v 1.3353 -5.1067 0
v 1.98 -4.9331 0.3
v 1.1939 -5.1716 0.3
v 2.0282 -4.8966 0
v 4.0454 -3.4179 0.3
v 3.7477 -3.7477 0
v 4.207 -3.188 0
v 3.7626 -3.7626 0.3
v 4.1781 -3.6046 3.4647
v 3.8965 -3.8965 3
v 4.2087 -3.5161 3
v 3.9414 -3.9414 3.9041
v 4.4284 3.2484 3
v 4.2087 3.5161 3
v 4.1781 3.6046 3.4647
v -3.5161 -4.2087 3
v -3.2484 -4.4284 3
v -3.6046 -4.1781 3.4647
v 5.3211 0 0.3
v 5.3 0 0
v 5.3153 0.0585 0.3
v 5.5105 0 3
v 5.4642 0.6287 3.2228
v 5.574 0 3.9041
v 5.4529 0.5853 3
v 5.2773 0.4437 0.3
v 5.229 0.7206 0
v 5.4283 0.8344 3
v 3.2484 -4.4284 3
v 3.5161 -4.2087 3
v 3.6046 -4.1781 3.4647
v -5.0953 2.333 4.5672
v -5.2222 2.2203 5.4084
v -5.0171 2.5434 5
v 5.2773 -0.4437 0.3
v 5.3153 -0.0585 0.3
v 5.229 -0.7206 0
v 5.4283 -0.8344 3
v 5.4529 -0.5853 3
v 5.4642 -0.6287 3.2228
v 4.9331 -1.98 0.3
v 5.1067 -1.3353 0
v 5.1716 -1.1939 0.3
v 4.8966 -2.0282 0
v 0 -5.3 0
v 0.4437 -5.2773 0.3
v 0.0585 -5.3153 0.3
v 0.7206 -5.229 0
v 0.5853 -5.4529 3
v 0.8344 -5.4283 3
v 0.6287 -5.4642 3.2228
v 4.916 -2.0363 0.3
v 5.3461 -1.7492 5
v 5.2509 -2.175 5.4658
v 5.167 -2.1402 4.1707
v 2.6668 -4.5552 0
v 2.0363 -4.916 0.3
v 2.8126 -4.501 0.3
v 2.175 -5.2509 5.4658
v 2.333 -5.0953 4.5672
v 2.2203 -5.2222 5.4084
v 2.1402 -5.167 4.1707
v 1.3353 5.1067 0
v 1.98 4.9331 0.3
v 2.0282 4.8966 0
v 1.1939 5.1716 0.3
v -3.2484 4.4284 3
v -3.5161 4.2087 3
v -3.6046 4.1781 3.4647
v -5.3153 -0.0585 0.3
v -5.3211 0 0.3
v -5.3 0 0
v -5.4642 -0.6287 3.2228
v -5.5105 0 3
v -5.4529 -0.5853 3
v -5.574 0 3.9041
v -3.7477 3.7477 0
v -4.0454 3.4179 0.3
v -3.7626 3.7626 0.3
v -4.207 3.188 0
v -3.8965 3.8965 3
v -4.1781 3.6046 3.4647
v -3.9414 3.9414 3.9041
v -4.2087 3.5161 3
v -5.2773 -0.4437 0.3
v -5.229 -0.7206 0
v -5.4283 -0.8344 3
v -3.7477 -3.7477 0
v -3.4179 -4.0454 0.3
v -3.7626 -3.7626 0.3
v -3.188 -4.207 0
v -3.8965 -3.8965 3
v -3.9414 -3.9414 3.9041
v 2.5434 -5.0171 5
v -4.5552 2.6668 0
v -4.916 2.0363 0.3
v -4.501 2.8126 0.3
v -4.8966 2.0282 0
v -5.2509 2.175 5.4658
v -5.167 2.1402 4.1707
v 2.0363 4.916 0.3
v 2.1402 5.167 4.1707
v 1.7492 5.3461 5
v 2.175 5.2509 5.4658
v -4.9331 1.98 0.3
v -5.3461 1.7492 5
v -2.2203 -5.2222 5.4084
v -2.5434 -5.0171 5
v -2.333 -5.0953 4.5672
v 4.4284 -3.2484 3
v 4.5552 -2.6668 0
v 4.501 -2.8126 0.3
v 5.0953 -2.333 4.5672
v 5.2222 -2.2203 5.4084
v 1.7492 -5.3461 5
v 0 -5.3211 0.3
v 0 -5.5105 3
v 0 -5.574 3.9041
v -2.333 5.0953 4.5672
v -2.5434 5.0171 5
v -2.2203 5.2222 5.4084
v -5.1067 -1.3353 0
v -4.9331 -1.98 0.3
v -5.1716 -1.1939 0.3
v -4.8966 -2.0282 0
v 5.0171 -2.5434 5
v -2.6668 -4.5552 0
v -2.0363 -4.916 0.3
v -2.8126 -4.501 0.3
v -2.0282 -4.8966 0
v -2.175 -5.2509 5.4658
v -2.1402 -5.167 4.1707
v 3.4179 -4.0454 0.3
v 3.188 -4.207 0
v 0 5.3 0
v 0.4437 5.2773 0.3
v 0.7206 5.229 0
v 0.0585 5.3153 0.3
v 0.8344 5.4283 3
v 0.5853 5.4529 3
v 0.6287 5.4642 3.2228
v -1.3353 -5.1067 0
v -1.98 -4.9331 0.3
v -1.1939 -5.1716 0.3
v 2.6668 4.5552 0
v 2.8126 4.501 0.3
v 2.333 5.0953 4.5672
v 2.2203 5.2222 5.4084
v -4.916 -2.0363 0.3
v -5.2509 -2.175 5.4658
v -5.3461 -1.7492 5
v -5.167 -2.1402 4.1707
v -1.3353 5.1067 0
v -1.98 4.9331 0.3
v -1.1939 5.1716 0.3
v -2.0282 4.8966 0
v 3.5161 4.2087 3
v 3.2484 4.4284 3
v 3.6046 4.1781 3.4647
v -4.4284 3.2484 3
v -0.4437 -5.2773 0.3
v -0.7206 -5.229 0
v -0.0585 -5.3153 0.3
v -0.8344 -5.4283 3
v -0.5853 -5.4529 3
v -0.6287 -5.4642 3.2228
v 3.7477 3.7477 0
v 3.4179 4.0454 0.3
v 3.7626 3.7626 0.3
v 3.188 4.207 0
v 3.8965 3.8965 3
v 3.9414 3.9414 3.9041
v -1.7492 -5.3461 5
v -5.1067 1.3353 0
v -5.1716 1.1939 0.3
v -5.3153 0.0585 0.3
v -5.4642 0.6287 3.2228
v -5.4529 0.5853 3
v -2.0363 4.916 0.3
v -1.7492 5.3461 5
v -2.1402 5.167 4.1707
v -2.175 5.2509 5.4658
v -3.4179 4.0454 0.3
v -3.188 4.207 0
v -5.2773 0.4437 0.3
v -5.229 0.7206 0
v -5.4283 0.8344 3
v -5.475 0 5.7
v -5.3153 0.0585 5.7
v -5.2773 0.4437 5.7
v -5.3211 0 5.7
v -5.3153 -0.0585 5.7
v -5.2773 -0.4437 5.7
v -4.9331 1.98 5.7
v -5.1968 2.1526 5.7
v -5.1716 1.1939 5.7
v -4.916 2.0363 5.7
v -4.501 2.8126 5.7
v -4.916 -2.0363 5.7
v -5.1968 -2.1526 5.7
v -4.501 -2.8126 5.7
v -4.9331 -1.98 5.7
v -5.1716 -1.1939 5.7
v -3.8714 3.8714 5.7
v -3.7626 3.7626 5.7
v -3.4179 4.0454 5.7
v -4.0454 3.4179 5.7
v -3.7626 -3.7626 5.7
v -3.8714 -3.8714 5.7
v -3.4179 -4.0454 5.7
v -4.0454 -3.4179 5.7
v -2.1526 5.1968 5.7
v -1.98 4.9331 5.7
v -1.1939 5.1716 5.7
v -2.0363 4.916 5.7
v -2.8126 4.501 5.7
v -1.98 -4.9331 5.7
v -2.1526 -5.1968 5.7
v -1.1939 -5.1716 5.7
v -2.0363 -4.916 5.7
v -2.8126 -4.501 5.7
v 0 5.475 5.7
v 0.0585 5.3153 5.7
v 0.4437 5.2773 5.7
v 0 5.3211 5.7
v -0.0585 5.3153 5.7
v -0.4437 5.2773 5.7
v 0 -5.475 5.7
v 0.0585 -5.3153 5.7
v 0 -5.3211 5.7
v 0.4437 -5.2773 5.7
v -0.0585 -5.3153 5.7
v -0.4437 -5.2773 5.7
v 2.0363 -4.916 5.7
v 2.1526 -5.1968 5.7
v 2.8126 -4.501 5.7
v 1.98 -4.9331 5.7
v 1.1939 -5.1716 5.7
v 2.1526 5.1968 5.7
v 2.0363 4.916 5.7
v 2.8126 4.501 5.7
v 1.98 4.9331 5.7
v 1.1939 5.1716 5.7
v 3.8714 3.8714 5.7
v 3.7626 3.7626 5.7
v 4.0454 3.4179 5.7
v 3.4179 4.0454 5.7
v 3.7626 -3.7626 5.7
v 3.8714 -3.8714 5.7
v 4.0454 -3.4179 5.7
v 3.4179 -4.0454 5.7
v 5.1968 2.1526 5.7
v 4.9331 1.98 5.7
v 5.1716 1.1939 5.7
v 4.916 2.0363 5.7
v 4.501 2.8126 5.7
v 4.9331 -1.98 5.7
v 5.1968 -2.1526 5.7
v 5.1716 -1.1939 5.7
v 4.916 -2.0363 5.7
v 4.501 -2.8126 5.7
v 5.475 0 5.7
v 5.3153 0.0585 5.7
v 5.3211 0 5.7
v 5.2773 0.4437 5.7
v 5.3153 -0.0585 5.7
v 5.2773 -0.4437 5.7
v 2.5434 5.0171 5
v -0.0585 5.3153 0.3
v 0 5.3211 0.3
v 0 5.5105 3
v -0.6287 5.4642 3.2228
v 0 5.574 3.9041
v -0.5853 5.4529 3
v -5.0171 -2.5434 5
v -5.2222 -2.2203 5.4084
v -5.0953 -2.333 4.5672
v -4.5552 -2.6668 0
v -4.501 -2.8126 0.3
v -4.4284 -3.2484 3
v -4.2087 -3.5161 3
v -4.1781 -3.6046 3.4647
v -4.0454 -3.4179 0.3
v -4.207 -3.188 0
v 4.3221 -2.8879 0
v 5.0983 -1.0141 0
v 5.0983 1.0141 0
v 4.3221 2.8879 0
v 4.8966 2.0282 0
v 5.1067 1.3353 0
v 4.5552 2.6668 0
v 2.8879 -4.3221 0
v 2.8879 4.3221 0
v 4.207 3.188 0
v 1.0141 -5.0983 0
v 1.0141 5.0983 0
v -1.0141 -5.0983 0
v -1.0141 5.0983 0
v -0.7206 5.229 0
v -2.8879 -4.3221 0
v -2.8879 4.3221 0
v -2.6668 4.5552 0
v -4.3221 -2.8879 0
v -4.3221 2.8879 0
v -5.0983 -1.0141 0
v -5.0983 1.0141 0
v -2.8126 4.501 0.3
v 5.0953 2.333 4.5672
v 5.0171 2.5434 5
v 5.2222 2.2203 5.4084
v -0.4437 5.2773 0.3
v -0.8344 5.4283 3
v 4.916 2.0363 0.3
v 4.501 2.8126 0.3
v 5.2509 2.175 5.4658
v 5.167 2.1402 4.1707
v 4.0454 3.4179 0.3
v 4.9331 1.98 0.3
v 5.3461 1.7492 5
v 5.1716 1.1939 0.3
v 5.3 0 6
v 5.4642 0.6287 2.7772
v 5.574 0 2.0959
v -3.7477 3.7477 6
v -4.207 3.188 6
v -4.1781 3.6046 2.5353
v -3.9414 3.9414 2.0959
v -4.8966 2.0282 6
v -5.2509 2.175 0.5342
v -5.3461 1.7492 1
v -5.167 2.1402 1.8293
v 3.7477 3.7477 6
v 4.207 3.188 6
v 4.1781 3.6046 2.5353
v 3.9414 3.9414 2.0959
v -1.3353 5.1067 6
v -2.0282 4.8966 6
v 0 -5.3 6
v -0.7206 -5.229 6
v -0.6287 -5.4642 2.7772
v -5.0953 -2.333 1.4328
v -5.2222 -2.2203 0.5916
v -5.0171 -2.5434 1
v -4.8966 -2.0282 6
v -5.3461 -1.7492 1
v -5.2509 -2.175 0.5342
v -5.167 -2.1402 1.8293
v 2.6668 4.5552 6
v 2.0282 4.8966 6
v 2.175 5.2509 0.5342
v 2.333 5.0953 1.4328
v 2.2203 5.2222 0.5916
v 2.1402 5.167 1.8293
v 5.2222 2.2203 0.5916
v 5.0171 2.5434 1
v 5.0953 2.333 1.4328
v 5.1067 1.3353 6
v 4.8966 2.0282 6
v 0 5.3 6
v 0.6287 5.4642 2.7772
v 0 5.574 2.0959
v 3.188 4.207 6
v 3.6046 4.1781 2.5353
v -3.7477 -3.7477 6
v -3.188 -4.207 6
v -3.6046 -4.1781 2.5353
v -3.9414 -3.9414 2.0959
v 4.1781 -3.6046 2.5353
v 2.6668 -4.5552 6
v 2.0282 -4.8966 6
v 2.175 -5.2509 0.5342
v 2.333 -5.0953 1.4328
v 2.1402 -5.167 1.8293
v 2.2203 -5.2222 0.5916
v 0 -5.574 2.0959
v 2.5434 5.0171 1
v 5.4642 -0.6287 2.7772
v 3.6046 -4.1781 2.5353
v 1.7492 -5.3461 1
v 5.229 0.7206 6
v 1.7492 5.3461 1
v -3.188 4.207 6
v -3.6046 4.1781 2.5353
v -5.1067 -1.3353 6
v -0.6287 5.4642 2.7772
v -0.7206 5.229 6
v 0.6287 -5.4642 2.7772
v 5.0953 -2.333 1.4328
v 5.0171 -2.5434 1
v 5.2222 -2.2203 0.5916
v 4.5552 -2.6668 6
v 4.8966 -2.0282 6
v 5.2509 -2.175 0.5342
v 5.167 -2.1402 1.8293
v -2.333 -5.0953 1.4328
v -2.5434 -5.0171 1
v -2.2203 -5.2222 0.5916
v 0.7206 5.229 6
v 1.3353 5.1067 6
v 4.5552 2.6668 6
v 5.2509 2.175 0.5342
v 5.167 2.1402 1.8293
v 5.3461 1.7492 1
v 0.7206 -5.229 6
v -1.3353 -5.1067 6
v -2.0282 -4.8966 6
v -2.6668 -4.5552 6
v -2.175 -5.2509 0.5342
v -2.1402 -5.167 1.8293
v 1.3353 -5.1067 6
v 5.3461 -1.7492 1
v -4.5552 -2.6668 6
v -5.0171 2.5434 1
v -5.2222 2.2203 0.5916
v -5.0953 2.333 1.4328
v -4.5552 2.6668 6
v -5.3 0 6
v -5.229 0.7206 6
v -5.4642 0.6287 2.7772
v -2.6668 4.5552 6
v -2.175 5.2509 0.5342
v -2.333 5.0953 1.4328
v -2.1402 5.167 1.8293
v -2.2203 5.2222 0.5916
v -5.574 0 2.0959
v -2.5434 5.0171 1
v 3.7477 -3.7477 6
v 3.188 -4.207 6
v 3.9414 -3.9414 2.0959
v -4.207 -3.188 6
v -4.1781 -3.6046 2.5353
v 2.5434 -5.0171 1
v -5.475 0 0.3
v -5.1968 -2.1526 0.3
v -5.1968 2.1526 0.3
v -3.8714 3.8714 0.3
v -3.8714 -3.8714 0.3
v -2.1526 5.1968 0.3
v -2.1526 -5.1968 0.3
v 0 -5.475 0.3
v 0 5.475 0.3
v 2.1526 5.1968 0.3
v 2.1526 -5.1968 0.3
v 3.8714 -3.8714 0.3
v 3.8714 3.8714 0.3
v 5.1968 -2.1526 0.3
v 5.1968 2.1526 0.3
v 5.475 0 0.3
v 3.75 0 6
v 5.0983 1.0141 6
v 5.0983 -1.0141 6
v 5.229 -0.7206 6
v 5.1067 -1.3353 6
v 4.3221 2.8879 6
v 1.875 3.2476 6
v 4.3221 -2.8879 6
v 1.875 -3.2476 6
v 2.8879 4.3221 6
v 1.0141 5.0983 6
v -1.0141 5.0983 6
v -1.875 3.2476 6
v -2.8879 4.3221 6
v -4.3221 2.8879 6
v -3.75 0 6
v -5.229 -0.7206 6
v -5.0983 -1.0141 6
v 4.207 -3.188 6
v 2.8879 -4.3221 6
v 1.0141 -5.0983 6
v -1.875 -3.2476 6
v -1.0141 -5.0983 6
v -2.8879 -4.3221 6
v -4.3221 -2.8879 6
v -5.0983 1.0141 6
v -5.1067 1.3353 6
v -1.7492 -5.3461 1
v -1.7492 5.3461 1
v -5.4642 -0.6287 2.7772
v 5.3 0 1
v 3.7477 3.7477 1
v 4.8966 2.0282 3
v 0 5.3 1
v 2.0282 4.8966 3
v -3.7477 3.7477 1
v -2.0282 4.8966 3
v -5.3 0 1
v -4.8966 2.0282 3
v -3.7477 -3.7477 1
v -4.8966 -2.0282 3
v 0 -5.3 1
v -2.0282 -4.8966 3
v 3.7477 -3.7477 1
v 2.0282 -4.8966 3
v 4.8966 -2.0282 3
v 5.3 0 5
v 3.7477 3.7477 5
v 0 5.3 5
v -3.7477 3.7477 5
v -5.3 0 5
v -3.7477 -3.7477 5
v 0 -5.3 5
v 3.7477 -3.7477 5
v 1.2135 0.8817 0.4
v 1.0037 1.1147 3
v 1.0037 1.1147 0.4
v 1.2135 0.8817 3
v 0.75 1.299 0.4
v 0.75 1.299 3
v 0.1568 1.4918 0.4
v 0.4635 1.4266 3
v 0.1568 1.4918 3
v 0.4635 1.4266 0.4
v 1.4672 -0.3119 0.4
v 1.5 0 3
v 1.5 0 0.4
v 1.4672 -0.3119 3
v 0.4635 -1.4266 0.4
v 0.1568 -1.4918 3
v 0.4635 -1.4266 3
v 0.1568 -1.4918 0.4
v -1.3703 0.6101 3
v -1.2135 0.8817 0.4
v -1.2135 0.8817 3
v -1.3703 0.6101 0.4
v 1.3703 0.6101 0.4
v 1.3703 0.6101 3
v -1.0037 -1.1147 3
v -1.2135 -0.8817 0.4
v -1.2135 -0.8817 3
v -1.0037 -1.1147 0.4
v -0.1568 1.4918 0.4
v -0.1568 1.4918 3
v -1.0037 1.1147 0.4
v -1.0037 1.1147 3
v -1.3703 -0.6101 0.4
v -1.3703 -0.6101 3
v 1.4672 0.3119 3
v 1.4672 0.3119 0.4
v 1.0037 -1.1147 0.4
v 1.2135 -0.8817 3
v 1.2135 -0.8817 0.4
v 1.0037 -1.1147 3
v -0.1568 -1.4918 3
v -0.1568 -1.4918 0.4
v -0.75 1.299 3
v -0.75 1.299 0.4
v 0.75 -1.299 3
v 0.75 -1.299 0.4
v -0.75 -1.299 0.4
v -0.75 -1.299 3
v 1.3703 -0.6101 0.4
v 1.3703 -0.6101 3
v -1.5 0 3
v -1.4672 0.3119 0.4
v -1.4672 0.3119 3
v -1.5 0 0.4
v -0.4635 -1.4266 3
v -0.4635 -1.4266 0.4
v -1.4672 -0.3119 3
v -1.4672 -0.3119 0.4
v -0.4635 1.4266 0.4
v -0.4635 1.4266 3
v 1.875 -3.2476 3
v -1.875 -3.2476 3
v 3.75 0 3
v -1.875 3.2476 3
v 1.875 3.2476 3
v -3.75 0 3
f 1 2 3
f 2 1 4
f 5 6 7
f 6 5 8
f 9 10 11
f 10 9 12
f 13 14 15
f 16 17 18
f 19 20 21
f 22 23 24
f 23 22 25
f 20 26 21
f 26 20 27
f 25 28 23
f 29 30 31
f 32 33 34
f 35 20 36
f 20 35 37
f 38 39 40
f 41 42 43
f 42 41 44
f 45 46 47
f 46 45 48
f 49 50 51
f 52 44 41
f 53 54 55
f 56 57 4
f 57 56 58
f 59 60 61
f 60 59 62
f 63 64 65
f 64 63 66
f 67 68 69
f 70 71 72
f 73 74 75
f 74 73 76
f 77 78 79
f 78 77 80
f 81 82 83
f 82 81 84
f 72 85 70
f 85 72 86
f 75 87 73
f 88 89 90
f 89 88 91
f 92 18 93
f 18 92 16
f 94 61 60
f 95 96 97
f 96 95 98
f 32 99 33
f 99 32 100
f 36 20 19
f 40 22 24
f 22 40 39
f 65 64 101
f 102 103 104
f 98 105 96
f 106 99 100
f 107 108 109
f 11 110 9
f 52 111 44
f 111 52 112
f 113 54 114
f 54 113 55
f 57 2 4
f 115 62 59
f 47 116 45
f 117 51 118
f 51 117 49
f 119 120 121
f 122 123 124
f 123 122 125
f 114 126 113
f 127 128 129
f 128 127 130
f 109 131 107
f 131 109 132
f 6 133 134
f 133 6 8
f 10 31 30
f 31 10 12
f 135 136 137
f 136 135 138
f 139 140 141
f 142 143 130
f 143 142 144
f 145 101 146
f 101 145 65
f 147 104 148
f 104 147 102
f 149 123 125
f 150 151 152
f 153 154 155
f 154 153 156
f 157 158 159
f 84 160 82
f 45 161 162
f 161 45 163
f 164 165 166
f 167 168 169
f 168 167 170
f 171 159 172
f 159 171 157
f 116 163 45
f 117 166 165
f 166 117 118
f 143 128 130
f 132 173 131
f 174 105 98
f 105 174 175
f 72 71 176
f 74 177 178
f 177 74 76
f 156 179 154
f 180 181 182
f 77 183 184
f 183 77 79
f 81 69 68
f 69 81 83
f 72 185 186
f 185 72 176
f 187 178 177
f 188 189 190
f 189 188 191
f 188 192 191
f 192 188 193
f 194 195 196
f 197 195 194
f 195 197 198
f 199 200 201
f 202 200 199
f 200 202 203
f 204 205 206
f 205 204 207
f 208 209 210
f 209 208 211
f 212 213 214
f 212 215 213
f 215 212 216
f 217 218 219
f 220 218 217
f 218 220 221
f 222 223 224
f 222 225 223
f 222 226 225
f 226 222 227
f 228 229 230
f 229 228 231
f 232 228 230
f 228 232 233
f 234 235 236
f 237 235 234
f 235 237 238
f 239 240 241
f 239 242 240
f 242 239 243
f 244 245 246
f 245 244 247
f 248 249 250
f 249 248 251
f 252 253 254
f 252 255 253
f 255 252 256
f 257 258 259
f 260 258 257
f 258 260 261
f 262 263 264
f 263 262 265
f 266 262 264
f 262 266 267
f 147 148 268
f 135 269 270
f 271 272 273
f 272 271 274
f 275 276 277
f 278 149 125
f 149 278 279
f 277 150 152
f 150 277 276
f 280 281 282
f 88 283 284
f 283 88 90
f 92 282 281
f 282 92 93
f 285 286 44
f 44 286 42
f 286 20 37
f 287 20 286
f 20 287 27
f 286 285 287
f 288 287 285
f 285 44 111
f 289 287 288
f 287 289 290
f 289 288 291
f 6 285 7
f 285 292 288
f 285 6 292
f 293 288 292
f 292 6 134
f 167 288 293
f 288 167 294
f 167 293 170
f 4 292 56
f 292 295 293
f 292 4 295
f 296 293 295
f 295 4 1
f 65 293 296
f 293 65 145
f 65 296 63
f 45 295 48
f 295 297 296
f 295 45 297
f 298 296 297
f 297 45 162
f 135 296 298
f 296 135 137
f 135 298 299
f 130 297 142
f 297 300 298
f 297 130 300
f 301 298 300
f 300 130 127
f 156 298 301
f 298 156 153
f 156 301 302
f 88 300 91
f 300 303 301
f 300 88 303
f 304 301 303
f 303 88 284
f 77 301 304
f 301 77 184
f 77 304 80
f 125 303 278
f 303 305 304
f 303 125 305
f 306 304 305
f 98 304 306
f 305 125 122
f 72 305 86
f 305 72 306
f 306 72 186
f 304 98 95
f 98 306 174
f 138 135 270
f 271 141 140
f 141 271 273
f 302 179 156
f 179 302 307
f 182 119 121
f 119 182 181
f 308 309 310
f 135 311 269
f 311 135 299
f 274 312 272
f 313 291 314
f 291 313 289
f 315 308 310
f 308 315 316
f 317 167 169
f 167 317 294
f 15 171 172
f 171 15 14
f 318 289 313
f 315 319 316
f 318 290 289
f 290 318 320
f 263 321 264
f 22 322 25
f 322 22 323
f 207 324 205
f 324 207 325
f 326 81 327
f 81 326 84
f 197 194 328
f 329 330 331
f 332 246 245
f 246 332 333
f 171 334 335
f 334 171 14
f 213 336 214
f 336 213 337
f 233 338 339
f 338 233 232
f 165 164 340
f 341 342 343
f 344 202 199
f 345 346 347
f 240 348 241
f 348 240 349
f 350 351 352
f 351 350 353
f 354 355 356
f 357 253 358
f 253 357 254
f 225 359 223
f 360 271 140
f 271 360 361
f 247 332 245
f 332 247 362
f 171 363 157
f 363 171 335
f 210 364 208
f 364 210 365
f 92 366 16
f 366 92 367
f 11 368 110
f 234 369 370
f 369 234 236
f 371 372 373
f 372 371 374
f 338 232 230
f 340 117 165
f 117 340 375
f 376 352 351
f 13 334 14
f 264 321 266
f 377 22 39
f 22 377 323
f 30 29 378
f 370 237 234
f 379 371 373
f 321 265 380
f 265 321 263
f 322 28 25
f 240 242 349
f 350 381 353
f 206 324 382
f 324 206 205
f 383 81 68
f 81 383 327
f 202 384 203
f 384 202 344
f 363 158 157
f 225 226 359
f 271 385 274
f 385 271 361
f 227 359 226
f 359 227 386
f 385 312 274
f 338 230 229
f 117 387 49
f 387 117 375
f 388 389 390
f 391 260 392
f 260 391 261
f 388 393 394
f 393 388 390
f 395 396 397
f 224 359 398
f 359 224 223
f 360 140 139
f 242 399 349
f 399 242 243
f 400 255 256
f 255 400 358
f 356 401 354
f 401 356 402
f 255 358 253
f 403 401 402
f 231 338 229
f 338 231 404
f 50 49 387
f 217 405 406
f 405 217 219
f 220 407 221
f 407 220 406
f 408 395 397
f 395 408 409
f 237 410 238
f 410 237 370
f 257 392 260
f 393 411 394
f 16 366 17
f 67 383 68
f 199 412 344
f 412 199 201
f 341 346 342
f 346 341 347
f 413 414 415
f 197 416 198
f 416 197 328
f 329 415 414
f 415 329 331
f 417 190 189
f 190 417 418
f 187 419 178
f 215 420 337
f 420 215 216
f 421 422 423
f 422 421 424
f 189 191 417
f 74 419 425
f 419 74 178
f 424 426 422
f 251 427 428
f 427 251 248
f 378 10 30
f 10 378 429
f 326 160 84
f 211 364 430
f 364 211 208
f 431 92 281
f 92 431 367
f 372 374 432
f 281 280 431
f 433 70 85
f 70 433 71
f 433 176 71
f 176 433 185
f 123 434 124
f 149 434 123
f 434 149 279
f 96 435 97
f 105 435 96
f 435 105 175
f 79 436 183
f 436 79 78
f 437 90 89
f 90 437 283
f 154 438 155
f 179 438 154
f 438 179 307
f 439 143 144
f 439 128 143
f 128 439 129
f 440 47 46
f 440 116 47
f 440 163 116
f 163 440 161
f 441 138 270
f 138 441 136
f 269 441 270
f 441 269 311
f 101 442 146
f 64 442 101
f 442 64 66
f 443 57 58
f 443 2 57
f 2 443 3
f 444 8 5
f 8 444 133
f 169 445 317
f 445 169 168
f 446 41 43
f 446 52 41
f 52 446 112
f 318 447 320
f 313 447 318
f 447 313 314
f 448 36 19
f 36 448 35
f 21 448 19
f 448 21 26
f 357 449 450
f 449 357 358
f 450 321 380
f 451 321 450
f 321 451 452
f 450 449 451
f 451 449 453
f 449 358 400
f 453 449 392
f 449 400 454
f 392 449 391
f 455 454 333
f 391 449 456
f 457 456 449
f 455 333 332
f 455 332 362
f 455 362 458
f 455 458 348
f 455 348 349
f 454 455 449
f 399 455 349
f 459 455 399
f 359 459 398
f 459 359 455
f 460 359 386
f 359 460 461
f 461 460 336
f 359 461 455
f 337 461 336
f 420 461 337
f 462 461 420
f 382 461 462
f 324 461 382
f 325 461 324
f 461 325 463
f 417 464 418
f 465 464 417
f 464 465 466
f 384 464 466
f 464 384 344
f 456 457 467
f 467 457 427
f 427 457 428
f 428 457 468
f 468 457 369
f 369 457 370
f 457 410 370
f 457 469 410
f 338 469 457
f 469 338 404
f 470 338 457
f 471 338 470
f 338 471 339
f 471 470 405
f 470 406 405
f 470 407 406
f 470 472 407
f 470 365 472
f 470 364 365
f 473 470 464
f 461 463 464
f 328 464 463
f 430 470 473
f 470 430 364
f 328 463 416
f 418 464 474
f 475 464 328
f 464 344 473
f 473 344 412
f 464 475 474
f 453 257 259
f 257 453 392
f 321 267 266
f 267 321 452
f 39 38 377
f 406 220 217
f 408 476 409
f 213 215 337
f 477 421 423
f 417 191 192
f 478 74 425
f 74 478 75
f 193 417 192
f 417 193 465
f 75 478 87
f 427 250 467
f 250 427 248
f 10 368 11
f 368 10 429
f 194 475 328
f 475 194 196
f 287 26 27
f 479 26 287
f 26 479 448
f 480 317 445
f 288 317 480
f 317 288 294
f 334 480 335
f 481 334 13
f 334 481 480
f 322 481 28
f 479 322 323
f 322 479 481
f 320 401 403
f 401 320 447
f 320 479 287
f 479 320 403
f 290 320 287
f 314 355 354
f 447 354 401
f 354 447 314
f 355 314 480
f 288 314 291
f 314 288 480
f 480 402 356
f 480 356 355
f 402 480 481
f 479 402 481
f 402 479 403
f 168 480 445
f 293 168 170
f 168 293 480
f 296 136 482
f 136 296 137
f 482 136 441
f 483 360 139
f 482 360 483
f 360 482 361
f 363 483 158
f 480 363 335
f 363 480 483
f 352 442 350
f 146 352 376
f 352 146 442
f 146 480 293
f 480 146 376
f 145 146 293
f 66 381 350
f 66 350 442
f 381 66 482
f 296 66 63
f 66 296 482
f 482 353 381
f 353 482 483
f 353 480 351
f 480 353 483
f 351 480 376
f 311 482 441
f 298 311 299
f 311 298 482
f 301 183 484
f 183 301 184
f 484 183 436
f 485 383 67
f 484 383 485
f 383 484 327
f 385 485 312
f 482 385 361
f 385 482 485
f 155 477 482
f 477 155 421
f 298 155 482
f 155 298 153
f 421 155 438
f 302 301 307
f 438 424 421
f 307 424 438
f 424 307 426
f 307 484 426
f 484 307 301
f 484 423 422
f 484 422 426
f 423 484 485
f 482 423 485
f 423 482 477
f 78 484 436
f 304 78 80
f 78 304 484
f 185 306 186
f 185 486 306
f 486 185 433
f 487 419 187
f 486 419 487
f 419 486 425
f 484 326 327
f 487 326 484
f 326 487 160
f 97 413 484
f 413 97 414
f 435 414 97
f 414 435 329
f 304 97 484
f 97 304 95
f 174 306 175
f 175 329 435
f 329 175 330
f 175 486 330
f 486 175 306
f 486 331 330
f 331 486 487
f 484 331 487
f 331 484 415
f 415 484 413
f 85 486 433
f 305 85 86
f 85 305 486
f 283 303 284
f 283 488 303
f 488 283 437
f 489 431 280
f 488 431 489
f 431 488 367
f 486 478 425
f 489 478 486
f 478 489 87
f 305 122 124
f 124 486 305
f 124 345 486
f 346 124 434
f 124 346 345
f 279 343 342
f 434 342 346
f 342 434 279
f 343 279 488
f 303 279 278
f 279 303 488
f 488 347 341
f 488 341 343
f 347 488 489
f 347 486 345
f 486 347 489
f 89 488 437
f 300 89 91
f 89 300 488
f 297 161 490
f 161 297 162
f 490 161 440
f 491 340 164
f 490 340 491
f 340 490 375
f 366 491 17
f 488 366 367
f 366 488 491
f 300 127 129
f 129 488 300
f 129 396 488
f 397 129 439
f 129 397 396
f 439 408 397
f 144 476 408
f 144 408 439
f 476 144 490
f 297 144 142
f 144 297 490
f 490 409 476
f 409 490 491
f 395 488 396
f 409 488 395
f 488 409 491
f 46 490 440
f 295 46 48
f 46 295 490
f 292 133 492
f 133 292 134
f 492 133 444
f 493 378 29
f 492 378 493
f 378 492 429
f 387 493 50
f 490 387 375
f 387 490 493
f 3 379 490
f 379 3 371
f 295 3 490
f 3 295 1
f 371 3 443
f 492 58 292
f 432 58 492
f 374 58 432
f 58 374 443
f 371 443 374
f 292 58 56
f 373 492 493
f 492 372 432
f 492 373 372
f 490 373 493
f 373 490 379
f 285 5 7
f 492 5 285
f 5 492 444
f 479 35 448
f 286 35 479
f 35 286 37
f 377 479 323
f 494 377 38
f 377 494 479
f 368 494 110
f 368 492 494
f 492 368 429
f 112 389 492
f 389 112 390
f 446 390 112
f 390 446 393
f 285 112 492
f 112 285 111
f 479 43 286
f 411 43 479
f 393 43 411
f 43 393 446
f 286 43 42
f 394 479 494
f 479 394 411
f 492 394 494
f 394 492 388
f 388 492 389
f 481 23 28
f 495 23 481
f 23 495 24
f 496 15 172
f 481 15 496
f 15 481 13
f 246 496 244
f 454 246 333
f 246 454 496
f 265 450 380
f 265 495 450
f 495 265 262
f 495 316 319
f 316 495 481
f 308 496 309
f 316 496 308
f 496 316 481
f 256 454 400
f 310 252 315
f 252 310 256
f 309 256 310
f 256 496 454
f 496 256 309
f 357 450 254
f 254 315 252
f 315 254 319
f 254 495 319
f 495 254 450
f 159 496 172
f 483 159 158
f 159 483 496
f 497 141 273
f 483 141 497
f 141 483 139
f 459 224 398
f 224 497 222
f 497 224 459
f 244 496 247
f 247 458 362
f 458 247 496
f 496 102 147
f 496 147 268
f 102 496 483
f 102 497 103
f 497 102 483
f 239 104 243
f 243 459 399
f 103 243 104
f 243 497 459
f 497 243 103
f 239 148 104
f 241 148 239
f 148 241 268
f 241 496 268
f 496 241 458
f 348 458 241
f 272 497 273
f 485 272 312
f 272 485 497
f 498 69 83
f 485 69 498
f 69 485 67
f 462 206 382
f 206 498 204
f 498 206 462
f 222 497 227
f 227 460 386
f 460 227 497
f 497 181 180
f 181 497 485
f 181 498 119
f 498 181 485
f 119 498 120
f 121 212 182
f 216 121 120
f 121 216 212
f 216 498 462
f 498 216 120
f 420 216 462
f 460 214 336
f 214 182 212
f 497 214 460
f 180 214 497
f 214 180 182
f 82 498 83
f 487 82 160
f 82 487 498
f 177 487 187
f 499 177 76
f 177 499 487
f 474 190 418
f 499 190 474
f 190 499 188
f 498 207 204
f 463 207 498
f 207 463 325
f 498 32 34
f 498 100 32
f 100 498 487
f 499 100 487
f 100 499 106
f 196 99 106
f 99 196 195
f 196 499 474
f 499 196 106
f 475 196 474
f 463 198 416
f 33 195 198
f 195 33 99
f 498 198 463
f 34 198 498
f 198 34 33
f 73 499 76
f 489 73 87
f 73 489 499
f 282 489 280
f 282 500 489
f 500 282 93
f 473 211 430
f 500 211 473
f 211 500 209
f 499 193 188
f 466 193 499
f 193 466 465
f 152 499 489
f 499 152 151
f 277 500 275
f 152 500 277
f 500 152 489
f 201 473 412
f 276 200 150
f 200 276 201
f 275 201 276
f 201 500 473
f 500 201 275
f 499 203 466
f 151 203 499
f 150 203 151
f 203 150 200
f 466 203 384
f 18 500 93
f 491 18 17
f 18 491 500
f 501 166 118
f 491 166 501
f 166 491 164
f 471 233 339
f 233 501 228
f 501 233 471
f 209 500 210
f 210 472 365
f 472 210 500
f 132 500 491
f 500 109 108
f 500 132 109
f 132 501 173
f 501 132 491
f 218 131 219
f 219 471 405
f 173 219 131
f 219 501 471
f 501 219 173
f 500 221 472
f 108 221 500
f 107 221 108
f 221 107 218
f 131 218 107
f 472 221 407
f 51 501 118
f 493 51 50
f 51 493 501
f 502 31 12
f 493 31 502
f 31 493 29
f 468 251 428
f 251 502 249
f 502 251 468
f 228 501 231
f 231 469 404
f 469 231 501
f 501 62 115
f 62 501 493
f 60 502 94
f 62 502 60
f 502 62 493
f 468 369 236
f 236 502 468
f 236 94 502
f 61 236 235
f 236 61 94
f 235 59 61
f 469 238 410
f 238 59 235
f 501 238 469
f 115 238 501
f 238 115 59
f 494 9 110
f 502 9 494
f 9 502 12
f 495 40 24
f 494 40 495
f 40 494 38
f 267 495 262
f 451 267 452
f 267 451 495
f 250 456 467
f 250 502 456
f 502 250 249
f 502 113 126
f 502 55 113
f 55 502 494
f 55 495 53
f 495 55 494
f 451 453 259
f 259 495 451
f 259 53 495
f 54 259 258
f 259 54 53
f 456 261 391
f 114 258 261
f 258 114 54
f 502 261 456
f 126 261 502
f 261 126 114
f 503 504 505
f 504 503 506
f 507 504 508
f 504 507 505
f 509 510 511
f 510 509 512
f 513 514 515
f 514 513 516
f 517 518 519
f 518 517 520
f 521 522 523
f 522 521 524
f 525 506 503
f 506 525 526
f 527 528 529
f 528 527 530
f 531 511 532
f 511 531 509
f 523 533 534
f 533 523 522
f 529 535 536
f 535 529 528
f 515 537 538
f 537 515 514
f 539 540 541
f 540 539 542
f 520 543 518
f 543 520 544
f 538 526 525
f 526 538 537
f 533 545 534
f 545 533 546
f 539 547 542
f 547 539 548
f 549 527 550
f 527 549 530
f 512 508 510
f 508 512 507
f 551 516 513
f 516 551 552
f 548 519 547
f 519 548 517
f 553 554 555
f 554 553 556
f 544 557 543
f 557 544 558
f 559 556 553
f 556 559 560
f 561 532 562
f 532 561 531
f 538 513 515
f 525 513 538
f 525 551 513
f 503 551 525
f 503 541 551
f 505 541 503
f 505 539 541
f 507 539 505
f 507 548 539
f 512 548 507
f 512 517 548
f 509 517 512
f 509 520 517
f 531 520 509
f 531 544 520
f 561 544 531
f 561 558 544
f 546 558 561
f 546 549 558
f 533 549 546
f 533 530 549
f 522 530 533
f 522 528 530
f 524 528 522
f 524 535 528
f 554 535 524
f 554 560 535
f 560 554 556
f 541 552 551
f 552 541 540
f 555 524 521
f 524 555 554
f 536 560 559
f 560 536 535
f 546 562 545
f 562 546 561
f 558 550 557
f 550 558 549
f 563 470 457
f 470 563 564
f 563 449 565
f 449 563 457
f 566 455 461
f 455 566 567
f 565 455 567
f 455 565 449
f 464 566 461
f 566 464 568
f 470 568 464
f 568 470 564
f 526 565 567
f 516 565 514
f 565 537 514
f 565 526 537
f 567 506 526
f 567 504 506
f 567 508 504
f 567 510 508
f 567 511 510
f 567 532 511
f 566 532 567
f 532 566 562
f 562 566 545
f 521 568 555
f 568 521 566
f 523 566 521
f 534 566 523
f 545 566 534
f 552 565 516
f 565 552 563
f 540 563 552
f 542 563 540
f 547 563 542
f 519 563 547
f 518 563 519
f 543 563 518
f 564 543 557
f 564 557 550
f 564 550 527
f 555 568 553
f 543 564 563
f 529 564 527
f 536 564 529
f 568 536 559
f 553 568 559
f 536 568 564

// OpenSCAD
// file: lib/knurledFinishLib.scad
/*
 * knurledFinishLib.scad
 *
 * Written by aubenc @ Thingiverse
 * Updated by project002x for OpenScad v2024
 *
 * This script is licensed under the Public Domain license.
 *
 * http://www.thingiverse.com/thing:9095
 *
 * Usage:
 *
 *    knurled_cyl( Knurled cylinder height,
 *                 Knurled cylinder outer diameter,
 *                 Knurl polyhedron width,
 *                 Knurl polyhedron height,
 *                 Knurl polyhedron depth,
 *                 Cylinder ends smoothed height,
 *                 Knurled surface smoothing amount );
 */
module knurled_cyl(chg, cod, cwd, csh, cdp, fsh, smt)
{
    cord=(cod+cdp+cdp*smt/100)/2;
    cird=cord-cdp;
    cfn=round(2*cird*PI/cwd);
    clf=360/cfn;
    crn=ceil(chg/csh);

    intersection()
    {
        shape(fsh, cird, cord-cdp*smt/100, cfn*4, chg);

        translate([0,0,-(crn*csh-chg)/2])
          knurled_finish(cord, cird, clf, csh, cfn, crn);
    }
}

module shape(hsh, ird, ord, fn4, hg)
{
        union()
        {
            cylinder(h=hsh, r1=ird, r2=ord, $fn=fn4, center=false);

            translate([0,0,hsh-0.002])
              cylinder(h=hg-2*hsh+0.004, r=ord, $fn=fn4, center=false);

            translate([0,0,hg-hsh])
              cylinder(h=hsh, r1=ord, r2=ird, $fn=fn4, center=false);
        }

}

module knurled_finish(ord, ird, lf, sh, fn, rn)
{
    for(j=[0:rn-1]) {
        h0=sh*j;
        h1=sh*(j+1/2);
        h2=sh*(j+1);

        for(i=[0:fn-1]) {
            lf0=lf*i;
            lf1=lf*(i+1/2);
            lf2=lf*(i+1);

            polyhedron(
                points=[
                     [ 0,0,h0],
                     [ ord*cos(lf0), ord*sin(lf0), h0],
                     [ ird*cos(lf1), ird*sin(lf1), h0],
                     [ ord*cos(lf2), ord*sin(lf2), h0],

                     [ ird*cos(lf0), ird*sin(lf0), h1],
                     [ ord*cos(lf1), ord*sin(lf1), h1],
                     [ ird*cos(lf2), ird*sin(lf2), h1],

                     [ 0,0,h2],
                     [ ord*cos(lf0), ord*sin(lf0), h2],
                     [ ird*cos(lf1), ird*sin(lf1), h2],
                     [ ord*cos(lf2), ord*sin(lf2), h2]
                    ],
                faces=[
                     [0,1,2],[2,3,0],
                     [1,0,4],[4,0,7],[7,8,4],
                     [8,7,9],[10,9,7],
                     [10,7,6],[6,7,0],[3,6,0],
                     [2,1,4],[3,2,6],[10,6,9],[8,9,4],
                     [4,5,2],[2,5,6],[6,5,9],[9,5,4]
                    ],
                convexity=5);

        }
    }
}
// main file
knobDiameter = 11;
knobHeight = 6;

boltDiameter = 3;
boltDepth = knobHeight - 0.4;
nutDiameter = 7.5;
nutDepth = 3;

knurlCutoff = knobHeight-.3;
knurlWidth = 4;
knurlHeight = 4;
knurlDepth = 0.5;
knurlSmoothAmount = 20;

/*********************************************\
 Libraries
\*********************************************/

include <lib/knurledFinishLib.scad>

difference() {
    knurled_cyl(
        knobHeight,
        knobDiameter,
        knurlWidth,
        knurlHeight,
        knurlDepth,
        knurlCutoff,
        knurlSmoothAmount
    );
    translate([0, 0, knobHeight - boltDepth])
        cylinder(d = boltDiameter, boltDepth + 1, $fn = 30);
    translate([0, 0, knobHeight - nutDepth])
        cylinder(d = nutDiameter, nutDepth + 1, $fn=6);
}
